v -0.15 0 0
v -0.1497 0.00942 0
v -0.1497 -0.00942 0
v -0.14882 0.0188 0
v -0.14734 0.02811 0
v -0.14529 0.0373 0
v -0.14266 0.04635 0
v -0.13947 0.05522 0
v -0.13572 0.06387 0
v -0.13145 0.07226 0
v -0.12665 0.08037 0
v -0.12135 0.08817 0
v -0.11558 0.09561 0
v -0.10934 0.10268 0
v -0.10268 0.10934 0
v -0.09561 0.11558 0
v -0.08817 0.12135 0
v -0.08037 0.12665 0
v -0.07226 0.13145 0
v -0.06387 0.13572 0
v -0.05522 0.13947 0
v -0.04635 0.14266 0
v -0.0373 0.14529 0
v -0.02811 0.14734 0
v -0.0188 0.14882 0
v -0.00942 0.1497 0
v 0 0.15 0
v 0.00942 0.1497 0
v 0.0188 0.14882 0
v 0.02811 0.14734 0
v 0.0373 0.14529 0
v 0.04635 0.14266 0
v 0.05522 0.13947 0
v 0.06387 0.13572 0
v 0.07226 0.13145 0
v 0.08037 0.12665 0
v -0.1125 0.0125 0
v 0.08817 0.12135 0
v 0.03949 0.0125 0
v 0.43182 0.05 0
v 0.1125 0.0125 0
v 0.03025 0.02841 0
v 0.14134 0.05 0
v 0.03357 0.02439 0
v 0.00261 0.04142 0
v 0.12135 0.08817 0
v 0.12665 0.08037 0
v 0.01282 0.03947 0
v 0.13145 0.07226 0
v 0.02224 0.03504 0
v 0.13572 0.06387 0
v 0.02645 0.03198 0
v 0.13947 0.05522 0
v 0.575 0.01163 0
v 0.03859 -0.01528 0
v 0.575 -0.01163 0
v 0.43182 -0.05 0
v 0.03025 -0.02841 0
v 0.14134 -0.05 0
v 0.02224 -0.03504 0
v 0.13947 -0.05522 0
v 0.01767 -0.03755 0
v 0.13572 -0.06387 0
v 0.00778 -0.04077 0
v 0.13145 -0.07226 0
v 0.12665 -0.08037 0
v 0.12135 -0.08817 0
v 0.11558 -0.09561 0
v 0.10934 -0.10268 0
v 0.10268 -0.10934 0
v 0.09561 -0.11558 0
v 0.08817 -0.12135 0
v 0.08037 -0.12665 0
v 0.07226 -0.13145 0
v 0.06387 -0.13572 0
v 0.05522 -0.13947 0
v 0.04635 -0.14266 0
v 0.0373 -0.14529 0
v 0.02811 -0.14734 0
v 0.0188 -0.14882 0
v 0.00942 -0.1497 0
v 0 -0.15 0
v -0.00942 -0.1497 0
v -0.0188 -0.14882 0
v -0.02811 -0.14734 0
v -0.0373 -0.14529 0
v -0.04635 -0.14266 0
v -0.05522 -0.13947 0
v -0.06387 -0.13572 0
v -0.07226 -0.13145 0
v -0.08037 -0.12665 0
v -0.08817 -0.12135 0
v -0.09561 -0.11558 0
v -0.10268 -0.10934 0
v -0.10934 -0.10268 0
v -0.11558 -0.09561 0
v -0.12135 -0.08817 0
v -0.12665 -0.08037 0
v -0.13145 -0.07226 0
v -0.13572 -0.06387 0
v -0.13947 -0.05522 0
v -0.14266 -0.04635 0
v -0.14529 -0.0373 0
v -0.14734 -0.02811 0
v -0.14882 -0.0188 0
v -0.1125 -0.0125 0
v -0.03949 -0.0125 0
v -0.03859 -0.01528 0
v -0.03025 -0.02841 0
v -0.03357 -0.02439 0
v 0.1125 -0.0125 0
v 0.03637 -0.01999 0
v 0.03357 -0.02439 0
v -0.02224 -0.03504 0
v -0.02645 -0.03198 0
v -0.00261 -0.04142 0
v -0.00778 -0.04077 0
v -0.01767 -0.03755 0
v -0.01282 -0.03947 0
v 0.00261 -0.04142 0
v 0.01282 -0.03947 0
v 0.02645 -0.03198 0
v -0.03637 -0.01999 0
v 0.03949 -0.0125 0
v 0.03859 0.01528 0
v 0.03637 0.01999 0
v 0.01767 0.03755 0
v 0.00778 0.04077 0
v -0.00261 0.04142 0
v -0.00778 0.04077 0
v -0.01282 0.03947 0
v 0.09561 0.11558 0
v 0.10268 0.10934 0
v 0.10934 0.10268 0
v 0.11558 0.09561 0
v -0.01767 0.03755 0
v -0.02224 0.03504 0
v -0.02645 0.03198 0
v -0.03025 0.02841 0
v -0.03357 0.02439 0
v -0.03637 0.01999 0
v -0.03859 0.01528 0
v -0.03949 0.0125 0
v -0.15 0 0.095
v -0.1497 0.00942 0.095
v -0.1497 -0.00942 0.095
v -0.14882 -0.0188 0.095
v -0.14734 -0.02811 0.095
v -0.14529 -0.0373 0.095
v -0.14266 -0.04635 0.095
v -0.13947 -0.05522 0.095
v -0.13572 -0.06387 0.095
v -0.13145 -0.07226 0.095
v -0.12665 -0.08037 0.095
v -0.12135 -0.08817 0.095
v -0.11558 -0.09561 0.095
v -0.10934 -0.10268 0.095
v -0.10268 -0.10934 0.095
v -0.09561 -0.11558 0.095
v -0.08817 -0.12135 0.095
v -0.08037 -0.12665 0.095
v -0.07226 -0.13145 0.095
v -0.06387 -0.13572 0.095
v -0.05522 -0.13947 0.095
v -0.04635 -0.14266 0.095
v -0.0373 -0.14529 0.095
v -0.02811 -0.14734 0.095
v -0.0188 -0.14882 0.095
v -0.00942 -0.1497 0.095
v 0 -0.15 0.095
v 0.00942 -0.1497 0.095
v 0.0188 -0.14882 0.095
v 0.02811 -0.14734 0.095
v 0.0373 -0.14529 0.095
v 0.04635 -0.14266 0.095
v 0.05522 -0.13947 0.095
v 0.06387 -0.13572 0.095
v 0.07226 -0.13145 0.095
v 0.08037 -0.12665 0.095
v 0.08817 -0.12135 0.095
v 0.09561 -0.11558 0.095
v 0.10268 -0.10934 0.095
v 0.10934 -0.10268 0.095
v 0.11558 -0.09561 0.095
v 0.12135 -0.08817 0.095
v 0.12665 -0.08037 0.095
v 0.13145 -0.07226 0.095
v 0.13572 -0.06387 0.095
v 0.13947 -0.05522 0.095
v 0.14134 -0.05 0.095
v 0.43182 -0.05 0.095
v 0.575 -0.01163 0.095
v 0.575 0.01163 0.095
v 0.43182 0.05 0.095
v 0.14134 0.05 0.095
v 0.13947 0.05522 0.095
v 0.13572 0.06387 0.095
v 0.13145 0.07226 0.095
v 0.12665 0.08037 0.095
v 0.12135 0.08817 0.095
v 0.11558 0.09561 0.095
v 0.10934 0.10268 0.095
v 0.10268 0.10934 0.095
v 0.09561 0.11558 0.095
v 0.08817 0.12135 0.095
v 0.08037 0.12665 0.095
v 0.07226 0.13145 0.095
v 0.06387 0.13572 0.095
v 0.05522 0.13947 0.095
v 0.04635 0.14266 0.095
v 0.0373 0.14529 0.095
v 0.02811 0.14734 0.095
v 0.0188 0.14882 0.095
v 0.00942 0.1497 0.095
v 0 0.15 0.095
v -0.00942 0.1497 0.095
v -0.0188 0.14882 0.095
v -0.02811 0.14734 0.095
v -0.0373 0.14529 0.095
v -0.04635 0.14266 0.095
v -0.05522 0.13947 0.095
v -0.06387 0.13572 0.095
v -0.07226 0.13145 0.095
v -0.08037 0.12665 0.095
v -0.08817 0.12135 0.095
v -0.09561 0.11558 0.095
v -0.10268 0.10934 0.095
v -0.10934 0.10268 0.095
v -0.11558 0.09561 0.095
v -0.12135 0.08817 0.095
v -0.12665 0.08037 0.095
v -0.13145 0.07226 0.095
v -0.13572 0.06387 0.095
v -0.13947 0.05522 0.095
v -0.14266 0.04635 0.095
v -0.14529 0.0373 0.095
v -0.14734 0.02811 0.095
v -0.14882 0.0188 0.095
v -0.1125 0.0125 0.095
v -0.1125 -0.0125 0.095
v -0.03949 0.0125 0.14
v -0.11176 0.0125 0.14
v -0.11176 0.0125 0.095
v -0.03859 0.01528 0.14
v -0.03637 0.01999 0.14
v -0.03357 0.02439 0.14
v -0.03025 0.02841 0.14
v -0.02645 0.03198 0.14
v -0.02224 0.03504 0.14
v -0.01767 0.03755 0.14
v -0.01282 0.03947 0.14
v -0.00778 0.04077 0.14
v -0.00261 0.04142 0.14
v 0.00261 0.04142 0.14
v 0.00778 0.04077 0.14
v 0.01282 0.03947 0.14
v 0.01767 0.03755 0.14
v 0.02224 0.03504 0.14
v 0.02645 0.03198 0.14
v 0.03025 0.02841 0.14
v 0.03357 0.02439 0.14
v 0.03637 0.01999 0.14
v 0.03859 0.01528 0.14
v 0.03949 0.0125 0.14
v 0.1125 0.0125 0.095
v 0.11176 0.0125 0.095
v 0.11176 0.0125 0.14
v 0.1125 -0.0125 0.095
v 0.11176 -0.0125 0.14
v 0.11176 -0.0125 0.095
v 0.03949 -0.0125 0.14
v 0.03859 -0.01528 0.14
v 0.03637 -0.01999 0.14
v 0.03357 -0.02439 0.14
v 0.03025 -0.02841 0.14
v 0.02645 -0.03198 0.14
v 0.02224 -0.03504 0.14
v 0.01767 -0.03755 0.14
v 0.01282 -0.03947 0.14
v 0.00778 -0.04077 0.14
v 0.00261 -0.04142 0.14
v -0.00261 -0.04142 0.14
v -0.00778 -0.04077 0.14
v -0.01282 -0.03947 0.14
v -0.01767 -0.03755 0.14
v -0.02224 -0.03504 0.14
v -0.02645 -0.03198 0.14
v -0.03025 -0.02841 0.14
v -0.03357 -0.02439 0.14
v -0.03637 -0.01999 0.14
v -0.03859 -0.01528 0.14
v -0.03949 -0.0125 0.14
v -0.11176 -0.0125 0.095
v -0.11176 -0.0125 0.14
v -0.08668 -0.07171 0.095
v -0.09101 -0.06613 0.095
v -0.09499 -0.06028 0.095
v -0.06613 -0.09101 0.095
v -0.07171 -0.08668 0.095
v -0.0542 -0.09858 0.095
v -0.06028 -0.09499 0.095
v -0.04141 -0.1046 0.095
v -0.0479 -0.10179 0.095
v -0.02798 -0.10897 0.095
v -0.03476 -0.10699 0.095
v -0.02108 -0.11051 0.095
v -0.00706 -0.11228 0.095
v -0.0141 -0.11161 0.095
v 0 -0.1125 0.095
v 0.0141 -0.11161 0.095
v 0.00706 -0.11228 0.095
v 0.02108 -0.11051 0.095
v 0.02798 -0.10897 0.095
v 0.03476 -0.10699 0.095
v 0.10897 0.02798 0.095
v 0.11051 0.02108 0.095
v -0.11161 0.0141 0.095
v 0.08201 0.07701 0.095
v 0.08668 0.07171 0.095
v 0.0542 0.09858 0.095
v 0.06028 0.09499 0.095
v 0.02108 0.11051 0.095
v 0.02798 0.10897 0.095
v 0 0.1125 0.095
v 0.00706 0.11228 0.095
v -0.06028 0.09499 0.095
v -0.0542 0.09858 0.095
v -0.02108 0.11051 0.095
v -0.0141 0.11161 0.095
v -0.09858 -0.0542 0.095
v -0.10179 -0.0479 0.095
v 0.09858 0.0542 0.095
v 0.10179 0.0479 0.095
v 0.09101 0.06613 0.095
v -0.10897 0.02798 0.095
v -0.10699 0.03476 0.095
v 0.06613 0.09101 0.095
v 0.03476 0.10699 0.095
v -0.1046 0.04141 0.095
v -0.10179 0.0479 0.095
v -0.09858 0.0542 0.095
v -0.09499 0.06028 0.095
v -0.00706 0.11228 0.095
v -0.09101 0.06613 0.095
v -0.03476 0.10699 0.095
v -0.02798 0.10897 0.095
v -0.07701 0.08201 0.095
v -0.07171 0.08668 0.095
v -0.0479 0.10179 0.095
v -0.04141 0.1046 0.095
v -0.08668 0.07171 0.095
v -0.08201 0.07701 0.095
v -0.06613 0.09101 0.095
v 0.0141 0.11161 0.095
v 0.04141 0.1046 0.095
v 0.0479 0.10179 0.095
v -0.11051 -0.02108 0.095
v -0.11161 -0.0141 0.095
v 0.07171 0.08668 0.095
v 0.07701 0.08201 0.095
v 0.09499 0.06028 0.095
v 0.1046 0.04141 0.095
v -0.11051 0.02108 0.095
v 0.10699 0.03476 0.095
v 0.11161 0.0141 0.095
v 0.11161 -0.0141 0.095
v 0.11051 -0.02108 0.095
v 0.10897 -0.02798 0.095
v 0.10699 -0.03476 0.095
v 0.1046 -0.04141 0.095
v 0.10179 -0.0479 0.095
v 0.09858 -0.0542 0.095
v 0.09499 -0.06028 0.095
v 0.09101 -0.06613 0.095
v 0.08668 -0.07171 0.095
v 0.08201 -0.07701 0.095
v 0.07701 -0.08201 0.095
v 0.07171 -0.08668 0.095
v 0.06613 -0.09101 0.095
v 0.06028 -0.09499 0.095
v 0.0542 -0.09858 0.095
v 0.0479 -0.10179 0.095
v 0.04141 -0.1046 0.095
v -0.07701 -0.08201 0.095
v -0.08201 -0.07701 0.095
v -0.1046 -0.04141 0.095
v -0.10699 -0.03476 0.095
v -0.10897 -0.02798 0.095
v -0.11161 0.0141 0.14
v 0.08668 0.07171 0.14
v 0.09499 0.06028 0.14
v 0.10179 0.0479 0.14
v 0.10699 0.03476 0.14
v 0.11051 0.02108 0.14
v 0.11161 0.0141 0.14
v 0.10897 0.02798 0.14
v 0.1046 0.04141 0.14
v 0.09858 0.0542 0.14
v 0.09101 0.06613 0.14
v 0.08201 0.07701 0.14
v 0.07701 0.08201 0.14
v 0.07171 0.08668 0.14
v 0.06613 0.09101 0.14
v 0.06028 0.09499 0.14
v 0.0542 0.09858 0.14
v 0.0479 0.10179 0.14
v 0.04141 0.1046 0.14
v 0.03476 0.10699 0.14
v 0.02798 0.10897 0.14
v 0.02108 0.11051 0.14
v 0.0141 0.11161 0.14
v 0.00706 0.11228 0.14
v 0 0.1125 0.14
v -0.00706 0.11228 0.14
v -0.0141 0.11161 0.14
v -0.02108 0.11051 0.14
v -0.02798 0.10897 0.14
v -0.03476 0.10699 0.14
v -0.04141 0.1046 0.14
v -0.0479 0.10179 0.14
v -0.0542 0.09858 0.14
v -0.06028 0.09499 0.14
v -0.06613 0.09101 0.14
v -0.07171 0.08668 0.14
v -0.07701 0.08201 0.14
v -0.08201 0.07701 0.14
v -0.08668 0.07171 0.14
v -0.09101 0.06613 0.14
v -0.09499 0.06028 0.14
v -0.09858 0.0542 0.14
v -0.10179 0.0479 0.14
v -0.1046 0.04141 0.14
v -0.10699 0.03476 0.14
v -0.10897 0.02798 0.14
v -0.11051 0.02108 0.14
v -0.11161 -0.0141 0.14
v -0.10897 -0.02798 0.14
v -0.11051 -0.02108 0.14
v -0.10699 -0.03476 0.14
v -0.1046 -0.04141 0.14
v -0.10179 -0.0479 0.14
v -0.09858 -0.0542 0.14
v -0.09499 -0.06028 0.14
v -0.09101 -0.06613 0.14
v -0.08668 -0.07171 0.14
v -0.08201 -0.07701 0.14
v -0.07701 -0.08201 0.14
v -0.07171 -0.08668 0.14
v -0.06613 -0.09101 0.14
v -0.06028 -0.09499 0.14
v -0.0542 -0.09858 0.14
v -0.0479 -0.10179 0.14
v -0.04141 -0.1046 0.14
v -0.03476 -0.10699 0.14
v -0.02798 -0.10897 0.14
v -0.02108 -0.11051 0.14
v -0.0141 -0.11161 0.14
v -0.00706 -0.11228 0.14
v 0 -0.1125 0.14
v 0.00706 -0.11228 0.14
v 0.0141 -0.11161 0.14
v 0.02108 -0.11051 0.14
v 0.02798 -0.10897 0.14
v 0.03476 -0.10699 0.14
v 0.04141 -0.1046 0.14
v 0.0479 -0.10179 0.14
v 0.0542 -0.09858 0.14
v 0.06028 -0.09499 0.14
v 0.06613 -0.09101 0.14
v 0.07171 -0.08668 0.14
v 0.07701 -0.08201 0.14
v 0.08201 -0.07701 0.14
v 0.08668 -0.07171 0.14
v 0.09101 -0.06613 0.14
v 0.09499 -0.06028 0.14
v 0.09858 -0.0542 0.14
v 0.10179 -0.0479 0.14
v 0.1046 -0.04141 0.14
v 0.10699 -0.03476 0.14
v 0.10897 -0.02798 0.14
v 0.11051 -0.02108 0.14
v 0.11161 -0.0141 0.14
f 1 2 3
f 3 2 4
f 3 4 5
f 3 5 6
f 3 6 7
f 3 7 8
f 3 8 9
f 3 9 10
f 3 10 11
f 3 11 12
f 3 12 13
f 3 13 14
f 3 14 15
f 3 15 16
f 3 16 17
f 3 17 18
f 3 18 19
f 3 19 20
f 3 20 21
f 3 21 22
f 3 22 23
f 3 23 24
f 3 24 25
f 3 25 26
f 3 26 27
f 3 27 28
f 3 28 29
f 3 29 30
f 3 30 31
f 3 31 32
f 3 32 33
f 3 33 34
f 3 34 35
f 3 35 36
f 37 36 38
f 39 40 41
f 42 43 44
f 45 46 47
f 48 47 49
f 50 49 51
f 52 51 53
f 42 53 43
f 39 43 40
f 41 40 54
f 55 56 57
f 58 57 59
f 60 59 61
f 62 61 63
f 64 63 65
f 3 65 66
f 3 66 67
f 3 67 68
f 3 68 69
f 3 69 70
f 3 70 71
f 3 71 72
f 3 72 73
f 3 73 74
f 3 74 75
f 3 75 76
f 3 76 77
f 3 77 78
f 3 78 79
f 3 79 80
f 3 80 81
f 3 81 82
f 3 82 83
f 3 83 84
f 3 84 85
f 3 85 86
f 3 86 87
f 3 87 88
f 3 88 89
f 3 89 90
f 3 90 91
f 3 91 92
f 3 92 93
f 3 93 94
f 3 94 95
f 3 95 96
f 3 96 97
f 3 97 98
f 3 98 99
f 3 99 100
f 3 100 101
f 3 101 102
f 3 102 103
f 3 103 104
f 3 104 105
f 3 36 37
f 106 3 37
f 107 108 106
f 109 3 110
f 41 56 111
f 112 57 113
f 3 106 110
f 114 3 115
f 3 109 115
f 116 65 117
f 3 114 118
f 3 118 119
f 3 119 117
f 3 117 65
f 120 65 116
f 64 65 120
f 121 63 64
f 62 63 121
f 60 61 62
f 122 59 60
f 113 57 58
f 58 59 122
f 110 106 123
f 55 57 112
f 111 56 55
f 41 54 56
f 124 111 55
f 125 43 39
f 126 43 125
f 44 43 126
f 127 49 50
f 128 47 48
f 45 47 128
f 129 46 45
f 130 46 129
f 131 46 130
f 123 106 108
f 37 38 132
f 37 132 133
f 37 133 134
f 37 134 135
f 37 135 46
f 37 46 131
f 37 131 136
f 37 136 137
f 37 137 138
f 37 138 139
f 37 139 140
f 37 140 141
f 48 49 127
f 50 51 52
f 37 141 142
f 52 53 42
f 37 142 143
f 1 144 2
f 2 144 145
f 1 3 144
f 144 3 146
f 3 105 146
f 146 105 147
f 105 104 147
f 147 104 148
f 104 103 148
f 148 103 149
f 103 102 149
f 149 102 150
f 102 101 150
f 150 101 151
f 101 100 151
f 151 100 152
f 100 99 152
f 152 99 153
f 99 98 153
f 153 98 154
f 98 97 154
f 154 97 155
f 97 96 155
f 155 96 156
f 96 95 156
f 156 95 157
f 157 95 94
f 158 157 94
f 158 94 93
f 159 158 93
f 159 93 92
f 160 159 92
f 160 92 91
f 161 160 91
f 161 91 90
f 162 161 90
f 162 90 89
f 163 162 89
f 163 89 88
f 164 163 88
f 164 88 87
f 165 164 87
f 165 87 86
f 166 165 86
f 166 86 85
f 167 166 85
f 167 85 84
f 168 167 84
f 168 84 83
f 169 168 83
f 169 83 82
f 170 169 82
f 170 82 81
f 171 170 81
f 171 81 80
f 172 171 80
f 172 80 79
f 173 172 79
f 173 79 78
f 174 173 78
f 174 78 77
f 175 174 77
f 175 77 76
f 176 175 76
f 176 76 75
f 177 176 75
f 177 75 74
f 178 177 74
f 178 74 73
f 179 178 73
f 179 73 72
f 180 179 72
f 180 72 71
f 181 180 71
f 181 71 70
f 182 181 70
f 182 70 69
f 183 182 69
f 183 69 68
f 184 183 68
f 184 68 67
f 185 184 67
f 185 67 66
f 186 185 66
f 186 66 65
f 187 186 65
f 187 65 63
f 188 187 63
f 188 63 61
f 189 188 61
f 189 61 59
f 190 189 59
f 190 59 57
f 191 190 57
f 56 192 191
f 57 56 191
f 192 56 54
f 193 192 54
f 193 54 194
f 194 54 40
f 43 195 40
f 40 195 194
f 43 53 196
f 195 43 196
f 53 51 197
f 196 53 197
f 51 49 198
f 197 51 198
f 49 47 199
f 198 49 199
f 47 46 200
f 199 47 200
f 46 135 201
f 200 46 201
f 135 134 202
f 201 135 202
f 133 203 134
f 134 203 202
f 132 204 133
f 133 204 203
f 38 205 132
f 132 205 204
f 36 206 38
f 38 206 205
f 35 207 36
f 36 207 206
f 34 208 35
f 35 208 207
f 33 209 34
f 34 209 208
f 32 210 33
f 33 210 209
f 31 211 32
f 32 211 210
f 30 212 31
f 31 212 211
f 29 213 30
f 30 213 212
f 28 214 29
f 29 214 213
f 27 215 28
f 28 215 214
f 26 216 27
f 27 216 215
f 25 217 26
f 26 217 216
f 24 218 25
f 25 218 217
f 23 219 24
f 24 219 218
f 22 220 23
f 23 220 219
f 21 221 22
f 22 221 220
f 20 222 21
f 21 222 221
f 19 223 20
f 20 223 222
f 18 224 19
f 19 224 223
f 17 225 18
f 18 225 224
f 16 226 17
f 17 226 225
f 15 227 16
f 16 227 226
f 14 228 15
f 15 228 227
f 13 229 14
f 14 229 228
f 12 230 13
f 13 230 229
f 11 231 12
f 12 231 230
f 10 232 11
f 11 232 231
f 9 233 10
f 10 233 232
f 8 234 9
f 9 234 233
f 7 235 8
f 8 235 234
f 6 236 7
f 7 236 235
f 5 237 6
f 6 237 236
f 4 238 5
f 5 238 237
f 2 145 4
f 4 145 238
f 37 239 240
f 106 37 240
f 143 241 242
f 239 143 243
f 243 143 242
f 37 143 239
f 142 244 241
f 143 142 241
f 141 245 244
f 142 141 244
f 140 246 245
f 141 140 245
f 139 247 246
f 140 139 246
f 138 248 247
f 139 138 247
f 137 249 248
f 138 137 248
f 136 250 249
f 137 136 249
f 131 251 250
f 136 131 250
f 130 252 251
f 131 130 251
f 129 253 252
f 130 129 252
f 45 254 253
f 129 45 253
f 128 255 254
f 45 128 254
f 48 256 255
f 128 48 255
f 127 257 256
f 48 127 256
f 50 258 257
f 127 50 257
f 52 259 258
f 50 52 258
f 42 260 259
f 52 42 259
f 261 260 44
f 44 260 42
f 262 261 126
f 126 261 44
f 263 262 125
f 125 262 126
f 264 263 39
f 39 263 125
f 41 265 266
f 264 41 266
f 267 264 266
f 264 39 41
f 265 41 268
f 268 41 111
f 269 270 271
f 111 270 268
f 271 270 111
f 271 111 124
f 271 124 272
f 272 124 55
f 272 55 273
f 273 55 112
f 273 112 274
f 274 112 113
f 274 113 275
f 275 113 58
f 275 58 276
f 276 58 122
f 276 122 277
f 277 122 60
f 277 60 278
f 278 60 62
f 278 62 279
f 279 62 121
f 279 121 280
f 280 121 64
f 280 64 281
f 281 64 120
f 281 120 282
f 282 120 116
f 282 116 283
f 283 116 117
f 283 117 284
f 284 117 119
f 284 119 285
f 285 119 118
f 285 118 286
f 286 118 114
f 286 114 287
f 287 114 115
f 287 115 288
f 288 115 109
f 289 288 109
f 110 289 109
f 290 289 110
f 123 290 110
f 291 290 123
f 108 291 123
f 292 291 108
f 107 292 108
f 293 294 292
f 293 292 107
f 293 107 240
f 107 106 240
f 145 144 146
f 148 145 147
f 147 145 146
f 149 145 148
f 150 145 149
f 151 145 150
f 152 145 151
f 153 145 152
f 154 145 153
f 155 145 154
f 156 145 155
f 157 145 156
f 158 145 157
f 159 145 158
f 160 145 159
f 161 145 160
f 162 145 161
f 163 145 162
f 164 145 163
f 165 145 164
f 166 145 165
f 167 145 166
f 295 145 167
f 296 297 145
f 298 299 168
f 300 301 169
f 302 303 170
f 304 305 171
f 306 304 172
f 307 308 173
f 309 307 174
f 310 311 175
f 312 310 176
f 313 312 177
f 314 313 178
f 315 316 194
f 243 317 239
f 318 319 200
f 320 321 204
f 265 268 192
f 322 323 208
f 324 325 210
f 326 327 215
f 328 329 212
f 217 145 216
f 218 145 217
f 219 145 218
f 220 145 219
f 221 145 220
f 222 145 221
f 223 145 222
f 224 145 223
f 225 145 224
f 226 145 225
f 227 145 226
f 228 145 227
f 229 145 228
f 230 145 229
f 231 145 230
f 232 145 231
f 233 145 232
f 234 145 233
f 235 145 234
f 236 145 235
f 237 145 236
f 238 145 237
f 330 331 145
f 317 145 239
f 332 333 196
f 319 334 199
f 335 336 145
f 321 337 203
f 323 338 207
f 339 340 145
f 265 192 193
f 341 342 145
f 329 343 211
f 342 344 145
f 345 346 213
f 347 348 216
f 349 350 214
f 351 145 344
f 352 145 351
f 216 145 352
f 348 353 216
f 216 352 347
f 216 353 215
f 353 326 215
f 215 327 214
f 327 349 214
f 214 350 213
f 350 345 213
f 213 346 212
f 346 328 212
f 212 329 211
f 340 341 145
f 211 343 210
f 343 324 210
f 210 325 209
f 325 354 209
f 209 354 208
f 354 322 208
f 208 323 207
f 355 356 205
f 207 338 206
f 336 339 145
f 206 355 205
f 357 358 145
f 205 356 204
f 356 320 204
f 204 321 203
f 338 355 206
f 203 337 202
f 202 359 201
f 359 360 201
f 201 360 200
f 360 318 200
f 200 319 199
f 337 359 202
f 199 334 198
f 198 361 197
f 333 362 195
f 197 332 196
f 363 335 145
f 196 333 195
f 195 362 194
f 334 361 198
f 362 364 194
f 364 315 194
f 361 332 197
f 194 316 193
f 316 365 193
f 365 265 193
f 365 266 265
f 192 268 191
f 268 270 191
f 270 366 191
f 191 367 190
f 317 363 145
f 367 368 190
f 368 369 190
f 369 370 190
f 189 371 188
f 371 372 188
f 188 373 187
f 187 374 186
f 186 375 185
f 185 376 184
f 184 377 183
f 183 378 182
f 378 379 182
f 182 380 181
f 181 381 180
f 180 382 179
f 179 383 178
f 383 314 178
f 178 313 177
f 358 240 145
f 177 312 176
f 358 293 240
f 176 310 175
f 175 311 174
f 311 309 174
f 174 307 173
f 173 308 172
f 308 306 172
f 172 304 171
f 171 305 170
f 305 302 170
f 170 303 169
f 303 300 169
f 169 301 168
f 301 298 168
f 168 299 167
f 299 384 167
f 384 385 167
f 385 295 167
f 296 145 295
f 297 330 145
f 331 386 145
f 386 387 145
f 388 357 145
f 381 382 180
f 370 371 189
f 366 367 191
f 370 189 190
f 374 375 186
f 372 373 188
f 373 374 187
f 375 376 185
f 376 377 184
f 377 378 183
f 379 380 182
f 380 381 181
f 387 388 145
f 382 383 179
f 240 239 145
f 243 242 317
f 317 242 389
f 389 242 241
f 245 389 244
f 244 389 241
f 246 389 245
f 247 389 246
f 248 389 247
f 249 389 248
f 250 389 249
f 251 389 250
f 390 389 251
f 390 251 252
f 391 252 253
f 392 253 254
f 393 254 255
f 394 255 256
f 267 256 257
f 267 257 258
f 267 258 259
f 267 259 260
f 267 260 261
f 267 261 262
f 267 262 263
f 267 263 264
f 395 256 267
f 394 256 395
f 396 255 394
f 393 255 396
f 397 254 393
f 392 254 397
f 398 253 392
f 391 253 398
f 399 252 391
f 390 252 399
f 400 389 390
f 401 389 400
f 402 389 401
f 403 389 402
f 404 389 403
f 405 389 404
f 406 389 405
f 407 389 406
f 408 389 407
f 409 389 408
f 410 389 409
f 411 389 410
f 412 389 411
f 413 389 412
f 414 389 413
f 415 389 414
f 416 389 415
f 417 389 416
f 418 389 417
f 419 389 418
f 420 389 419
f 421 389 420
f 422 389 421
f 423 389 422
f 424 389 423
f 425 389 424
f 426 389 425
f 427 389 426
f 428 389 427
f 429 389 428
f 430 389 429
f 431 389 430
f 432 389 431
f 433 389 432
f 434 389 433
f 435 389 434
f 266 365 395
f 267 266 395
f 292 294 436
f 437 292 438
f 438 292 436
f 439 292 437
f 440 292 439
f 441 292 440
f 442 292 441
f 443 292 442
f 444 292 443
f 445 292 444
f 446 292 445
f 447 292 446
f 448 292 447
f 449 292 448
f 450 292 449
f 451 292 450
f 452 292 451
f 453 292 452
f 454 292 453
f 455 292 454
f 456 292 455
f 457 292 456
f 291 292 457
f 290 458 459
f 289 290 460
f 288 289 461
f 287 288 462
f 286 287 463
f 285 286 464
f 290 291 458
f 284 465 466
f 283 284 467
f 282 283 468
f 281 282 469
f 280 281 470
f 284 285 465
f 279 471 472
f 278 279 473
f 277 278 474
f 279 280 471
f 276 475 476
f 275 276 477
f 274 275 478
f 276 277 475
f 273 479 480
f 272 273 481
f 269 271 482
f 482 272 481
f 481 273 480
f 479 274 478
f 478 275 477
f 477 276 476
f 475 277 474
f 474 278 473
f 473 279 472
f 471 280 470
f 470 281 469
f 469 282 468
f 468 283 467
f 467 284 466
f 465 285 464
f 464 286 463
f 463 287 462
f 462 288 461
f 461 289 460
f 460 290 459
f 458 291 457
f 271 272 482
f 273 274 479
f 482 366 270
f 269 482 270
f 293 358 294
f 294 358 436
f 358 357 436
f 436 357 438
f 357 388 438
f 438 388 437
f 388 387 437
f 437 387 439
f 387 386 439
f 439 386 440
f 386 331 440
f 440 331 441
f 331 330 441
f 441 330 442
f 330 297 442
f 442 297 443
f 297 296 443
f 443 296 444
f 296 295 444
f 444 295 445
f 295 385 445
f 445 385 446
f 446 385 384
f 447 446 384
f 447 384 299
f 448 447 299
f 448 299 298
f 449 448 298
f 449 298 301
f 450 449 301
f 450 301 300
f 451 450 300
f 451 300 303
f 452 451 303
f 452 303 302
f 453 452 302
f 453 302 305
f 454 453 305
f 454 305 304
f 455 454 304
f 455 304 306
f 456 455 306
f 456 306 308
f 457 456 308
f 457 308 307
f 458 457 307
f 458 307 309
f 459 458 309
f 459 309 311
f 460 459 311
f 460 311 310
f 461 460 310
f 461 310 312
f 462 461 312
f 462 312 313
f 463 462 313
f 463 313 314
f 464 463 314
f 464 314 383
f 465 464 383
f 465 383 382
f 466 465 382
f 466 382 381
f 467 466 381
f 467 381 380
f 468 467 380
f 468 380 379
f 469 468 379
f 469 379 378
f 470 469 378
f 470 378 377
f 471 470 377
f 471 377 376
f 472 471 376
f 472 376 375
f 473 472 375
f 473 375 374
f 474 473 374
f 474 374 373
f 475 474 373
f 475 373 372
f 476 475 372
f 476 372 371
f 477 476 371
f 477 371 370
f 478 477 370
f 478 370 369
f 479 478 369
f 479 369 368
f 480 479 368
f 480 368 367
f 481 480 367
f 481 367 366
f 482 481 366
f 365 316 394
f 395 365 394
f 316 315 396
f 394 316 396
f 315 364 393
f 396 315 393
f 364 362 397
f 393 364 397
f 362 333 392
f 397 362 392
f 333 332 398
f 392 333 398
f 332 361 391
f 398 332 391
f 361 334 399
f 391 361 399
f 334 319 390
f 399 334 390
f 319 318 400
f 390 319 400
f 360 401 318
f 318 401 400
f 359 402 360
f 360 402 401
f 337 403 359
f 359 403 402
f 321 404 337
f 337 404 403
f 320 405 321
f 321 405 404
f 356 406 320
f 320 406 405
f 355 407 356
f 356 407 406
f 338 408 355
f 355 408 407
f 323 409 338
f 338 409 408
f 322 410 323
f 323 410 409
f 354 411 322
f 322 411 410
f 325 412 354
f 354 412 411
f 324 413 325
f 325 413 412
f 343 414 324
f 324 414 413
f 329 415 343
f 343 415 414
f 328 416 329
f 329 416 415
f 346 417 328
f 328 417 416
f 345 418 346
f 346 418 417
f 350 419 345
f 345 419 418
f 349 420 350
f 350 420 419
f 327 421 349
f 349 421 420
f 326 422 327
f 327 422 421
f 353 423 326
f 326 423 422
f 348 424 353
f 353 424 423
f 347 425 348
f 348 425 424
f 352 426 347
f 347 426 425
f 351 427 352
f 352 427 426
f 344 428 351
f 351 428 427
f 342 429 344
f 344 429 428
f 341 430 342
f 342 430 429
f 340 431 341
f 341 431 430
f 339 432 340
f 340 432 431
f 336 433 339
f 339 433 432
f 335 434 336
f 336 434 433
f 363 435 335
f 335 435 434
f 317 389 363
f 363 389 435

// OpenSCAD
indicatorOffset = 1.35;
indicatorTipDistance = 0.200;

indicatorHeight = 0.095;
indicatorWidth  = 0.100;
indicatorLength = indicatorOffset/2 - indicatorTipDistance/2;
indicatorMountingShaftDiameter = 0.093;

difference() {
  union() {
    translate([indicatorLength/2, 0, indicatorHeight/2])
      cube([indicatorLength, indicatorWidth, indicatorHeight], center = true);

    cylinder(h = indicatorHeight + 0.045, d = 0.225, center = false, $fn = 100);

    cylinder(h = indicatorHeight, d = 0.300, center = false, $fn = 100);
  }

  cylinder(h = 0.500, d = indicatorMountingShaftDiameter - 0.010, center = true, $fn = 50);
  cube([0.225, 0.025, 1], center=true);

  translate([indicatorLength + 0.05, indicatorWidth/2, 0])
    rotate([0,0,75])
     cube([indicatorWidth, indicatorLength, 2.5*indicatorHeight], center = true);

  translate([indicatorLength + 0.05, -indicatorWidth/2, 0])
    rotate([0,0,-75])
       cube([indicatorWidth, indicatorLength, 2.5*indicatorHeight], center = true);

}
